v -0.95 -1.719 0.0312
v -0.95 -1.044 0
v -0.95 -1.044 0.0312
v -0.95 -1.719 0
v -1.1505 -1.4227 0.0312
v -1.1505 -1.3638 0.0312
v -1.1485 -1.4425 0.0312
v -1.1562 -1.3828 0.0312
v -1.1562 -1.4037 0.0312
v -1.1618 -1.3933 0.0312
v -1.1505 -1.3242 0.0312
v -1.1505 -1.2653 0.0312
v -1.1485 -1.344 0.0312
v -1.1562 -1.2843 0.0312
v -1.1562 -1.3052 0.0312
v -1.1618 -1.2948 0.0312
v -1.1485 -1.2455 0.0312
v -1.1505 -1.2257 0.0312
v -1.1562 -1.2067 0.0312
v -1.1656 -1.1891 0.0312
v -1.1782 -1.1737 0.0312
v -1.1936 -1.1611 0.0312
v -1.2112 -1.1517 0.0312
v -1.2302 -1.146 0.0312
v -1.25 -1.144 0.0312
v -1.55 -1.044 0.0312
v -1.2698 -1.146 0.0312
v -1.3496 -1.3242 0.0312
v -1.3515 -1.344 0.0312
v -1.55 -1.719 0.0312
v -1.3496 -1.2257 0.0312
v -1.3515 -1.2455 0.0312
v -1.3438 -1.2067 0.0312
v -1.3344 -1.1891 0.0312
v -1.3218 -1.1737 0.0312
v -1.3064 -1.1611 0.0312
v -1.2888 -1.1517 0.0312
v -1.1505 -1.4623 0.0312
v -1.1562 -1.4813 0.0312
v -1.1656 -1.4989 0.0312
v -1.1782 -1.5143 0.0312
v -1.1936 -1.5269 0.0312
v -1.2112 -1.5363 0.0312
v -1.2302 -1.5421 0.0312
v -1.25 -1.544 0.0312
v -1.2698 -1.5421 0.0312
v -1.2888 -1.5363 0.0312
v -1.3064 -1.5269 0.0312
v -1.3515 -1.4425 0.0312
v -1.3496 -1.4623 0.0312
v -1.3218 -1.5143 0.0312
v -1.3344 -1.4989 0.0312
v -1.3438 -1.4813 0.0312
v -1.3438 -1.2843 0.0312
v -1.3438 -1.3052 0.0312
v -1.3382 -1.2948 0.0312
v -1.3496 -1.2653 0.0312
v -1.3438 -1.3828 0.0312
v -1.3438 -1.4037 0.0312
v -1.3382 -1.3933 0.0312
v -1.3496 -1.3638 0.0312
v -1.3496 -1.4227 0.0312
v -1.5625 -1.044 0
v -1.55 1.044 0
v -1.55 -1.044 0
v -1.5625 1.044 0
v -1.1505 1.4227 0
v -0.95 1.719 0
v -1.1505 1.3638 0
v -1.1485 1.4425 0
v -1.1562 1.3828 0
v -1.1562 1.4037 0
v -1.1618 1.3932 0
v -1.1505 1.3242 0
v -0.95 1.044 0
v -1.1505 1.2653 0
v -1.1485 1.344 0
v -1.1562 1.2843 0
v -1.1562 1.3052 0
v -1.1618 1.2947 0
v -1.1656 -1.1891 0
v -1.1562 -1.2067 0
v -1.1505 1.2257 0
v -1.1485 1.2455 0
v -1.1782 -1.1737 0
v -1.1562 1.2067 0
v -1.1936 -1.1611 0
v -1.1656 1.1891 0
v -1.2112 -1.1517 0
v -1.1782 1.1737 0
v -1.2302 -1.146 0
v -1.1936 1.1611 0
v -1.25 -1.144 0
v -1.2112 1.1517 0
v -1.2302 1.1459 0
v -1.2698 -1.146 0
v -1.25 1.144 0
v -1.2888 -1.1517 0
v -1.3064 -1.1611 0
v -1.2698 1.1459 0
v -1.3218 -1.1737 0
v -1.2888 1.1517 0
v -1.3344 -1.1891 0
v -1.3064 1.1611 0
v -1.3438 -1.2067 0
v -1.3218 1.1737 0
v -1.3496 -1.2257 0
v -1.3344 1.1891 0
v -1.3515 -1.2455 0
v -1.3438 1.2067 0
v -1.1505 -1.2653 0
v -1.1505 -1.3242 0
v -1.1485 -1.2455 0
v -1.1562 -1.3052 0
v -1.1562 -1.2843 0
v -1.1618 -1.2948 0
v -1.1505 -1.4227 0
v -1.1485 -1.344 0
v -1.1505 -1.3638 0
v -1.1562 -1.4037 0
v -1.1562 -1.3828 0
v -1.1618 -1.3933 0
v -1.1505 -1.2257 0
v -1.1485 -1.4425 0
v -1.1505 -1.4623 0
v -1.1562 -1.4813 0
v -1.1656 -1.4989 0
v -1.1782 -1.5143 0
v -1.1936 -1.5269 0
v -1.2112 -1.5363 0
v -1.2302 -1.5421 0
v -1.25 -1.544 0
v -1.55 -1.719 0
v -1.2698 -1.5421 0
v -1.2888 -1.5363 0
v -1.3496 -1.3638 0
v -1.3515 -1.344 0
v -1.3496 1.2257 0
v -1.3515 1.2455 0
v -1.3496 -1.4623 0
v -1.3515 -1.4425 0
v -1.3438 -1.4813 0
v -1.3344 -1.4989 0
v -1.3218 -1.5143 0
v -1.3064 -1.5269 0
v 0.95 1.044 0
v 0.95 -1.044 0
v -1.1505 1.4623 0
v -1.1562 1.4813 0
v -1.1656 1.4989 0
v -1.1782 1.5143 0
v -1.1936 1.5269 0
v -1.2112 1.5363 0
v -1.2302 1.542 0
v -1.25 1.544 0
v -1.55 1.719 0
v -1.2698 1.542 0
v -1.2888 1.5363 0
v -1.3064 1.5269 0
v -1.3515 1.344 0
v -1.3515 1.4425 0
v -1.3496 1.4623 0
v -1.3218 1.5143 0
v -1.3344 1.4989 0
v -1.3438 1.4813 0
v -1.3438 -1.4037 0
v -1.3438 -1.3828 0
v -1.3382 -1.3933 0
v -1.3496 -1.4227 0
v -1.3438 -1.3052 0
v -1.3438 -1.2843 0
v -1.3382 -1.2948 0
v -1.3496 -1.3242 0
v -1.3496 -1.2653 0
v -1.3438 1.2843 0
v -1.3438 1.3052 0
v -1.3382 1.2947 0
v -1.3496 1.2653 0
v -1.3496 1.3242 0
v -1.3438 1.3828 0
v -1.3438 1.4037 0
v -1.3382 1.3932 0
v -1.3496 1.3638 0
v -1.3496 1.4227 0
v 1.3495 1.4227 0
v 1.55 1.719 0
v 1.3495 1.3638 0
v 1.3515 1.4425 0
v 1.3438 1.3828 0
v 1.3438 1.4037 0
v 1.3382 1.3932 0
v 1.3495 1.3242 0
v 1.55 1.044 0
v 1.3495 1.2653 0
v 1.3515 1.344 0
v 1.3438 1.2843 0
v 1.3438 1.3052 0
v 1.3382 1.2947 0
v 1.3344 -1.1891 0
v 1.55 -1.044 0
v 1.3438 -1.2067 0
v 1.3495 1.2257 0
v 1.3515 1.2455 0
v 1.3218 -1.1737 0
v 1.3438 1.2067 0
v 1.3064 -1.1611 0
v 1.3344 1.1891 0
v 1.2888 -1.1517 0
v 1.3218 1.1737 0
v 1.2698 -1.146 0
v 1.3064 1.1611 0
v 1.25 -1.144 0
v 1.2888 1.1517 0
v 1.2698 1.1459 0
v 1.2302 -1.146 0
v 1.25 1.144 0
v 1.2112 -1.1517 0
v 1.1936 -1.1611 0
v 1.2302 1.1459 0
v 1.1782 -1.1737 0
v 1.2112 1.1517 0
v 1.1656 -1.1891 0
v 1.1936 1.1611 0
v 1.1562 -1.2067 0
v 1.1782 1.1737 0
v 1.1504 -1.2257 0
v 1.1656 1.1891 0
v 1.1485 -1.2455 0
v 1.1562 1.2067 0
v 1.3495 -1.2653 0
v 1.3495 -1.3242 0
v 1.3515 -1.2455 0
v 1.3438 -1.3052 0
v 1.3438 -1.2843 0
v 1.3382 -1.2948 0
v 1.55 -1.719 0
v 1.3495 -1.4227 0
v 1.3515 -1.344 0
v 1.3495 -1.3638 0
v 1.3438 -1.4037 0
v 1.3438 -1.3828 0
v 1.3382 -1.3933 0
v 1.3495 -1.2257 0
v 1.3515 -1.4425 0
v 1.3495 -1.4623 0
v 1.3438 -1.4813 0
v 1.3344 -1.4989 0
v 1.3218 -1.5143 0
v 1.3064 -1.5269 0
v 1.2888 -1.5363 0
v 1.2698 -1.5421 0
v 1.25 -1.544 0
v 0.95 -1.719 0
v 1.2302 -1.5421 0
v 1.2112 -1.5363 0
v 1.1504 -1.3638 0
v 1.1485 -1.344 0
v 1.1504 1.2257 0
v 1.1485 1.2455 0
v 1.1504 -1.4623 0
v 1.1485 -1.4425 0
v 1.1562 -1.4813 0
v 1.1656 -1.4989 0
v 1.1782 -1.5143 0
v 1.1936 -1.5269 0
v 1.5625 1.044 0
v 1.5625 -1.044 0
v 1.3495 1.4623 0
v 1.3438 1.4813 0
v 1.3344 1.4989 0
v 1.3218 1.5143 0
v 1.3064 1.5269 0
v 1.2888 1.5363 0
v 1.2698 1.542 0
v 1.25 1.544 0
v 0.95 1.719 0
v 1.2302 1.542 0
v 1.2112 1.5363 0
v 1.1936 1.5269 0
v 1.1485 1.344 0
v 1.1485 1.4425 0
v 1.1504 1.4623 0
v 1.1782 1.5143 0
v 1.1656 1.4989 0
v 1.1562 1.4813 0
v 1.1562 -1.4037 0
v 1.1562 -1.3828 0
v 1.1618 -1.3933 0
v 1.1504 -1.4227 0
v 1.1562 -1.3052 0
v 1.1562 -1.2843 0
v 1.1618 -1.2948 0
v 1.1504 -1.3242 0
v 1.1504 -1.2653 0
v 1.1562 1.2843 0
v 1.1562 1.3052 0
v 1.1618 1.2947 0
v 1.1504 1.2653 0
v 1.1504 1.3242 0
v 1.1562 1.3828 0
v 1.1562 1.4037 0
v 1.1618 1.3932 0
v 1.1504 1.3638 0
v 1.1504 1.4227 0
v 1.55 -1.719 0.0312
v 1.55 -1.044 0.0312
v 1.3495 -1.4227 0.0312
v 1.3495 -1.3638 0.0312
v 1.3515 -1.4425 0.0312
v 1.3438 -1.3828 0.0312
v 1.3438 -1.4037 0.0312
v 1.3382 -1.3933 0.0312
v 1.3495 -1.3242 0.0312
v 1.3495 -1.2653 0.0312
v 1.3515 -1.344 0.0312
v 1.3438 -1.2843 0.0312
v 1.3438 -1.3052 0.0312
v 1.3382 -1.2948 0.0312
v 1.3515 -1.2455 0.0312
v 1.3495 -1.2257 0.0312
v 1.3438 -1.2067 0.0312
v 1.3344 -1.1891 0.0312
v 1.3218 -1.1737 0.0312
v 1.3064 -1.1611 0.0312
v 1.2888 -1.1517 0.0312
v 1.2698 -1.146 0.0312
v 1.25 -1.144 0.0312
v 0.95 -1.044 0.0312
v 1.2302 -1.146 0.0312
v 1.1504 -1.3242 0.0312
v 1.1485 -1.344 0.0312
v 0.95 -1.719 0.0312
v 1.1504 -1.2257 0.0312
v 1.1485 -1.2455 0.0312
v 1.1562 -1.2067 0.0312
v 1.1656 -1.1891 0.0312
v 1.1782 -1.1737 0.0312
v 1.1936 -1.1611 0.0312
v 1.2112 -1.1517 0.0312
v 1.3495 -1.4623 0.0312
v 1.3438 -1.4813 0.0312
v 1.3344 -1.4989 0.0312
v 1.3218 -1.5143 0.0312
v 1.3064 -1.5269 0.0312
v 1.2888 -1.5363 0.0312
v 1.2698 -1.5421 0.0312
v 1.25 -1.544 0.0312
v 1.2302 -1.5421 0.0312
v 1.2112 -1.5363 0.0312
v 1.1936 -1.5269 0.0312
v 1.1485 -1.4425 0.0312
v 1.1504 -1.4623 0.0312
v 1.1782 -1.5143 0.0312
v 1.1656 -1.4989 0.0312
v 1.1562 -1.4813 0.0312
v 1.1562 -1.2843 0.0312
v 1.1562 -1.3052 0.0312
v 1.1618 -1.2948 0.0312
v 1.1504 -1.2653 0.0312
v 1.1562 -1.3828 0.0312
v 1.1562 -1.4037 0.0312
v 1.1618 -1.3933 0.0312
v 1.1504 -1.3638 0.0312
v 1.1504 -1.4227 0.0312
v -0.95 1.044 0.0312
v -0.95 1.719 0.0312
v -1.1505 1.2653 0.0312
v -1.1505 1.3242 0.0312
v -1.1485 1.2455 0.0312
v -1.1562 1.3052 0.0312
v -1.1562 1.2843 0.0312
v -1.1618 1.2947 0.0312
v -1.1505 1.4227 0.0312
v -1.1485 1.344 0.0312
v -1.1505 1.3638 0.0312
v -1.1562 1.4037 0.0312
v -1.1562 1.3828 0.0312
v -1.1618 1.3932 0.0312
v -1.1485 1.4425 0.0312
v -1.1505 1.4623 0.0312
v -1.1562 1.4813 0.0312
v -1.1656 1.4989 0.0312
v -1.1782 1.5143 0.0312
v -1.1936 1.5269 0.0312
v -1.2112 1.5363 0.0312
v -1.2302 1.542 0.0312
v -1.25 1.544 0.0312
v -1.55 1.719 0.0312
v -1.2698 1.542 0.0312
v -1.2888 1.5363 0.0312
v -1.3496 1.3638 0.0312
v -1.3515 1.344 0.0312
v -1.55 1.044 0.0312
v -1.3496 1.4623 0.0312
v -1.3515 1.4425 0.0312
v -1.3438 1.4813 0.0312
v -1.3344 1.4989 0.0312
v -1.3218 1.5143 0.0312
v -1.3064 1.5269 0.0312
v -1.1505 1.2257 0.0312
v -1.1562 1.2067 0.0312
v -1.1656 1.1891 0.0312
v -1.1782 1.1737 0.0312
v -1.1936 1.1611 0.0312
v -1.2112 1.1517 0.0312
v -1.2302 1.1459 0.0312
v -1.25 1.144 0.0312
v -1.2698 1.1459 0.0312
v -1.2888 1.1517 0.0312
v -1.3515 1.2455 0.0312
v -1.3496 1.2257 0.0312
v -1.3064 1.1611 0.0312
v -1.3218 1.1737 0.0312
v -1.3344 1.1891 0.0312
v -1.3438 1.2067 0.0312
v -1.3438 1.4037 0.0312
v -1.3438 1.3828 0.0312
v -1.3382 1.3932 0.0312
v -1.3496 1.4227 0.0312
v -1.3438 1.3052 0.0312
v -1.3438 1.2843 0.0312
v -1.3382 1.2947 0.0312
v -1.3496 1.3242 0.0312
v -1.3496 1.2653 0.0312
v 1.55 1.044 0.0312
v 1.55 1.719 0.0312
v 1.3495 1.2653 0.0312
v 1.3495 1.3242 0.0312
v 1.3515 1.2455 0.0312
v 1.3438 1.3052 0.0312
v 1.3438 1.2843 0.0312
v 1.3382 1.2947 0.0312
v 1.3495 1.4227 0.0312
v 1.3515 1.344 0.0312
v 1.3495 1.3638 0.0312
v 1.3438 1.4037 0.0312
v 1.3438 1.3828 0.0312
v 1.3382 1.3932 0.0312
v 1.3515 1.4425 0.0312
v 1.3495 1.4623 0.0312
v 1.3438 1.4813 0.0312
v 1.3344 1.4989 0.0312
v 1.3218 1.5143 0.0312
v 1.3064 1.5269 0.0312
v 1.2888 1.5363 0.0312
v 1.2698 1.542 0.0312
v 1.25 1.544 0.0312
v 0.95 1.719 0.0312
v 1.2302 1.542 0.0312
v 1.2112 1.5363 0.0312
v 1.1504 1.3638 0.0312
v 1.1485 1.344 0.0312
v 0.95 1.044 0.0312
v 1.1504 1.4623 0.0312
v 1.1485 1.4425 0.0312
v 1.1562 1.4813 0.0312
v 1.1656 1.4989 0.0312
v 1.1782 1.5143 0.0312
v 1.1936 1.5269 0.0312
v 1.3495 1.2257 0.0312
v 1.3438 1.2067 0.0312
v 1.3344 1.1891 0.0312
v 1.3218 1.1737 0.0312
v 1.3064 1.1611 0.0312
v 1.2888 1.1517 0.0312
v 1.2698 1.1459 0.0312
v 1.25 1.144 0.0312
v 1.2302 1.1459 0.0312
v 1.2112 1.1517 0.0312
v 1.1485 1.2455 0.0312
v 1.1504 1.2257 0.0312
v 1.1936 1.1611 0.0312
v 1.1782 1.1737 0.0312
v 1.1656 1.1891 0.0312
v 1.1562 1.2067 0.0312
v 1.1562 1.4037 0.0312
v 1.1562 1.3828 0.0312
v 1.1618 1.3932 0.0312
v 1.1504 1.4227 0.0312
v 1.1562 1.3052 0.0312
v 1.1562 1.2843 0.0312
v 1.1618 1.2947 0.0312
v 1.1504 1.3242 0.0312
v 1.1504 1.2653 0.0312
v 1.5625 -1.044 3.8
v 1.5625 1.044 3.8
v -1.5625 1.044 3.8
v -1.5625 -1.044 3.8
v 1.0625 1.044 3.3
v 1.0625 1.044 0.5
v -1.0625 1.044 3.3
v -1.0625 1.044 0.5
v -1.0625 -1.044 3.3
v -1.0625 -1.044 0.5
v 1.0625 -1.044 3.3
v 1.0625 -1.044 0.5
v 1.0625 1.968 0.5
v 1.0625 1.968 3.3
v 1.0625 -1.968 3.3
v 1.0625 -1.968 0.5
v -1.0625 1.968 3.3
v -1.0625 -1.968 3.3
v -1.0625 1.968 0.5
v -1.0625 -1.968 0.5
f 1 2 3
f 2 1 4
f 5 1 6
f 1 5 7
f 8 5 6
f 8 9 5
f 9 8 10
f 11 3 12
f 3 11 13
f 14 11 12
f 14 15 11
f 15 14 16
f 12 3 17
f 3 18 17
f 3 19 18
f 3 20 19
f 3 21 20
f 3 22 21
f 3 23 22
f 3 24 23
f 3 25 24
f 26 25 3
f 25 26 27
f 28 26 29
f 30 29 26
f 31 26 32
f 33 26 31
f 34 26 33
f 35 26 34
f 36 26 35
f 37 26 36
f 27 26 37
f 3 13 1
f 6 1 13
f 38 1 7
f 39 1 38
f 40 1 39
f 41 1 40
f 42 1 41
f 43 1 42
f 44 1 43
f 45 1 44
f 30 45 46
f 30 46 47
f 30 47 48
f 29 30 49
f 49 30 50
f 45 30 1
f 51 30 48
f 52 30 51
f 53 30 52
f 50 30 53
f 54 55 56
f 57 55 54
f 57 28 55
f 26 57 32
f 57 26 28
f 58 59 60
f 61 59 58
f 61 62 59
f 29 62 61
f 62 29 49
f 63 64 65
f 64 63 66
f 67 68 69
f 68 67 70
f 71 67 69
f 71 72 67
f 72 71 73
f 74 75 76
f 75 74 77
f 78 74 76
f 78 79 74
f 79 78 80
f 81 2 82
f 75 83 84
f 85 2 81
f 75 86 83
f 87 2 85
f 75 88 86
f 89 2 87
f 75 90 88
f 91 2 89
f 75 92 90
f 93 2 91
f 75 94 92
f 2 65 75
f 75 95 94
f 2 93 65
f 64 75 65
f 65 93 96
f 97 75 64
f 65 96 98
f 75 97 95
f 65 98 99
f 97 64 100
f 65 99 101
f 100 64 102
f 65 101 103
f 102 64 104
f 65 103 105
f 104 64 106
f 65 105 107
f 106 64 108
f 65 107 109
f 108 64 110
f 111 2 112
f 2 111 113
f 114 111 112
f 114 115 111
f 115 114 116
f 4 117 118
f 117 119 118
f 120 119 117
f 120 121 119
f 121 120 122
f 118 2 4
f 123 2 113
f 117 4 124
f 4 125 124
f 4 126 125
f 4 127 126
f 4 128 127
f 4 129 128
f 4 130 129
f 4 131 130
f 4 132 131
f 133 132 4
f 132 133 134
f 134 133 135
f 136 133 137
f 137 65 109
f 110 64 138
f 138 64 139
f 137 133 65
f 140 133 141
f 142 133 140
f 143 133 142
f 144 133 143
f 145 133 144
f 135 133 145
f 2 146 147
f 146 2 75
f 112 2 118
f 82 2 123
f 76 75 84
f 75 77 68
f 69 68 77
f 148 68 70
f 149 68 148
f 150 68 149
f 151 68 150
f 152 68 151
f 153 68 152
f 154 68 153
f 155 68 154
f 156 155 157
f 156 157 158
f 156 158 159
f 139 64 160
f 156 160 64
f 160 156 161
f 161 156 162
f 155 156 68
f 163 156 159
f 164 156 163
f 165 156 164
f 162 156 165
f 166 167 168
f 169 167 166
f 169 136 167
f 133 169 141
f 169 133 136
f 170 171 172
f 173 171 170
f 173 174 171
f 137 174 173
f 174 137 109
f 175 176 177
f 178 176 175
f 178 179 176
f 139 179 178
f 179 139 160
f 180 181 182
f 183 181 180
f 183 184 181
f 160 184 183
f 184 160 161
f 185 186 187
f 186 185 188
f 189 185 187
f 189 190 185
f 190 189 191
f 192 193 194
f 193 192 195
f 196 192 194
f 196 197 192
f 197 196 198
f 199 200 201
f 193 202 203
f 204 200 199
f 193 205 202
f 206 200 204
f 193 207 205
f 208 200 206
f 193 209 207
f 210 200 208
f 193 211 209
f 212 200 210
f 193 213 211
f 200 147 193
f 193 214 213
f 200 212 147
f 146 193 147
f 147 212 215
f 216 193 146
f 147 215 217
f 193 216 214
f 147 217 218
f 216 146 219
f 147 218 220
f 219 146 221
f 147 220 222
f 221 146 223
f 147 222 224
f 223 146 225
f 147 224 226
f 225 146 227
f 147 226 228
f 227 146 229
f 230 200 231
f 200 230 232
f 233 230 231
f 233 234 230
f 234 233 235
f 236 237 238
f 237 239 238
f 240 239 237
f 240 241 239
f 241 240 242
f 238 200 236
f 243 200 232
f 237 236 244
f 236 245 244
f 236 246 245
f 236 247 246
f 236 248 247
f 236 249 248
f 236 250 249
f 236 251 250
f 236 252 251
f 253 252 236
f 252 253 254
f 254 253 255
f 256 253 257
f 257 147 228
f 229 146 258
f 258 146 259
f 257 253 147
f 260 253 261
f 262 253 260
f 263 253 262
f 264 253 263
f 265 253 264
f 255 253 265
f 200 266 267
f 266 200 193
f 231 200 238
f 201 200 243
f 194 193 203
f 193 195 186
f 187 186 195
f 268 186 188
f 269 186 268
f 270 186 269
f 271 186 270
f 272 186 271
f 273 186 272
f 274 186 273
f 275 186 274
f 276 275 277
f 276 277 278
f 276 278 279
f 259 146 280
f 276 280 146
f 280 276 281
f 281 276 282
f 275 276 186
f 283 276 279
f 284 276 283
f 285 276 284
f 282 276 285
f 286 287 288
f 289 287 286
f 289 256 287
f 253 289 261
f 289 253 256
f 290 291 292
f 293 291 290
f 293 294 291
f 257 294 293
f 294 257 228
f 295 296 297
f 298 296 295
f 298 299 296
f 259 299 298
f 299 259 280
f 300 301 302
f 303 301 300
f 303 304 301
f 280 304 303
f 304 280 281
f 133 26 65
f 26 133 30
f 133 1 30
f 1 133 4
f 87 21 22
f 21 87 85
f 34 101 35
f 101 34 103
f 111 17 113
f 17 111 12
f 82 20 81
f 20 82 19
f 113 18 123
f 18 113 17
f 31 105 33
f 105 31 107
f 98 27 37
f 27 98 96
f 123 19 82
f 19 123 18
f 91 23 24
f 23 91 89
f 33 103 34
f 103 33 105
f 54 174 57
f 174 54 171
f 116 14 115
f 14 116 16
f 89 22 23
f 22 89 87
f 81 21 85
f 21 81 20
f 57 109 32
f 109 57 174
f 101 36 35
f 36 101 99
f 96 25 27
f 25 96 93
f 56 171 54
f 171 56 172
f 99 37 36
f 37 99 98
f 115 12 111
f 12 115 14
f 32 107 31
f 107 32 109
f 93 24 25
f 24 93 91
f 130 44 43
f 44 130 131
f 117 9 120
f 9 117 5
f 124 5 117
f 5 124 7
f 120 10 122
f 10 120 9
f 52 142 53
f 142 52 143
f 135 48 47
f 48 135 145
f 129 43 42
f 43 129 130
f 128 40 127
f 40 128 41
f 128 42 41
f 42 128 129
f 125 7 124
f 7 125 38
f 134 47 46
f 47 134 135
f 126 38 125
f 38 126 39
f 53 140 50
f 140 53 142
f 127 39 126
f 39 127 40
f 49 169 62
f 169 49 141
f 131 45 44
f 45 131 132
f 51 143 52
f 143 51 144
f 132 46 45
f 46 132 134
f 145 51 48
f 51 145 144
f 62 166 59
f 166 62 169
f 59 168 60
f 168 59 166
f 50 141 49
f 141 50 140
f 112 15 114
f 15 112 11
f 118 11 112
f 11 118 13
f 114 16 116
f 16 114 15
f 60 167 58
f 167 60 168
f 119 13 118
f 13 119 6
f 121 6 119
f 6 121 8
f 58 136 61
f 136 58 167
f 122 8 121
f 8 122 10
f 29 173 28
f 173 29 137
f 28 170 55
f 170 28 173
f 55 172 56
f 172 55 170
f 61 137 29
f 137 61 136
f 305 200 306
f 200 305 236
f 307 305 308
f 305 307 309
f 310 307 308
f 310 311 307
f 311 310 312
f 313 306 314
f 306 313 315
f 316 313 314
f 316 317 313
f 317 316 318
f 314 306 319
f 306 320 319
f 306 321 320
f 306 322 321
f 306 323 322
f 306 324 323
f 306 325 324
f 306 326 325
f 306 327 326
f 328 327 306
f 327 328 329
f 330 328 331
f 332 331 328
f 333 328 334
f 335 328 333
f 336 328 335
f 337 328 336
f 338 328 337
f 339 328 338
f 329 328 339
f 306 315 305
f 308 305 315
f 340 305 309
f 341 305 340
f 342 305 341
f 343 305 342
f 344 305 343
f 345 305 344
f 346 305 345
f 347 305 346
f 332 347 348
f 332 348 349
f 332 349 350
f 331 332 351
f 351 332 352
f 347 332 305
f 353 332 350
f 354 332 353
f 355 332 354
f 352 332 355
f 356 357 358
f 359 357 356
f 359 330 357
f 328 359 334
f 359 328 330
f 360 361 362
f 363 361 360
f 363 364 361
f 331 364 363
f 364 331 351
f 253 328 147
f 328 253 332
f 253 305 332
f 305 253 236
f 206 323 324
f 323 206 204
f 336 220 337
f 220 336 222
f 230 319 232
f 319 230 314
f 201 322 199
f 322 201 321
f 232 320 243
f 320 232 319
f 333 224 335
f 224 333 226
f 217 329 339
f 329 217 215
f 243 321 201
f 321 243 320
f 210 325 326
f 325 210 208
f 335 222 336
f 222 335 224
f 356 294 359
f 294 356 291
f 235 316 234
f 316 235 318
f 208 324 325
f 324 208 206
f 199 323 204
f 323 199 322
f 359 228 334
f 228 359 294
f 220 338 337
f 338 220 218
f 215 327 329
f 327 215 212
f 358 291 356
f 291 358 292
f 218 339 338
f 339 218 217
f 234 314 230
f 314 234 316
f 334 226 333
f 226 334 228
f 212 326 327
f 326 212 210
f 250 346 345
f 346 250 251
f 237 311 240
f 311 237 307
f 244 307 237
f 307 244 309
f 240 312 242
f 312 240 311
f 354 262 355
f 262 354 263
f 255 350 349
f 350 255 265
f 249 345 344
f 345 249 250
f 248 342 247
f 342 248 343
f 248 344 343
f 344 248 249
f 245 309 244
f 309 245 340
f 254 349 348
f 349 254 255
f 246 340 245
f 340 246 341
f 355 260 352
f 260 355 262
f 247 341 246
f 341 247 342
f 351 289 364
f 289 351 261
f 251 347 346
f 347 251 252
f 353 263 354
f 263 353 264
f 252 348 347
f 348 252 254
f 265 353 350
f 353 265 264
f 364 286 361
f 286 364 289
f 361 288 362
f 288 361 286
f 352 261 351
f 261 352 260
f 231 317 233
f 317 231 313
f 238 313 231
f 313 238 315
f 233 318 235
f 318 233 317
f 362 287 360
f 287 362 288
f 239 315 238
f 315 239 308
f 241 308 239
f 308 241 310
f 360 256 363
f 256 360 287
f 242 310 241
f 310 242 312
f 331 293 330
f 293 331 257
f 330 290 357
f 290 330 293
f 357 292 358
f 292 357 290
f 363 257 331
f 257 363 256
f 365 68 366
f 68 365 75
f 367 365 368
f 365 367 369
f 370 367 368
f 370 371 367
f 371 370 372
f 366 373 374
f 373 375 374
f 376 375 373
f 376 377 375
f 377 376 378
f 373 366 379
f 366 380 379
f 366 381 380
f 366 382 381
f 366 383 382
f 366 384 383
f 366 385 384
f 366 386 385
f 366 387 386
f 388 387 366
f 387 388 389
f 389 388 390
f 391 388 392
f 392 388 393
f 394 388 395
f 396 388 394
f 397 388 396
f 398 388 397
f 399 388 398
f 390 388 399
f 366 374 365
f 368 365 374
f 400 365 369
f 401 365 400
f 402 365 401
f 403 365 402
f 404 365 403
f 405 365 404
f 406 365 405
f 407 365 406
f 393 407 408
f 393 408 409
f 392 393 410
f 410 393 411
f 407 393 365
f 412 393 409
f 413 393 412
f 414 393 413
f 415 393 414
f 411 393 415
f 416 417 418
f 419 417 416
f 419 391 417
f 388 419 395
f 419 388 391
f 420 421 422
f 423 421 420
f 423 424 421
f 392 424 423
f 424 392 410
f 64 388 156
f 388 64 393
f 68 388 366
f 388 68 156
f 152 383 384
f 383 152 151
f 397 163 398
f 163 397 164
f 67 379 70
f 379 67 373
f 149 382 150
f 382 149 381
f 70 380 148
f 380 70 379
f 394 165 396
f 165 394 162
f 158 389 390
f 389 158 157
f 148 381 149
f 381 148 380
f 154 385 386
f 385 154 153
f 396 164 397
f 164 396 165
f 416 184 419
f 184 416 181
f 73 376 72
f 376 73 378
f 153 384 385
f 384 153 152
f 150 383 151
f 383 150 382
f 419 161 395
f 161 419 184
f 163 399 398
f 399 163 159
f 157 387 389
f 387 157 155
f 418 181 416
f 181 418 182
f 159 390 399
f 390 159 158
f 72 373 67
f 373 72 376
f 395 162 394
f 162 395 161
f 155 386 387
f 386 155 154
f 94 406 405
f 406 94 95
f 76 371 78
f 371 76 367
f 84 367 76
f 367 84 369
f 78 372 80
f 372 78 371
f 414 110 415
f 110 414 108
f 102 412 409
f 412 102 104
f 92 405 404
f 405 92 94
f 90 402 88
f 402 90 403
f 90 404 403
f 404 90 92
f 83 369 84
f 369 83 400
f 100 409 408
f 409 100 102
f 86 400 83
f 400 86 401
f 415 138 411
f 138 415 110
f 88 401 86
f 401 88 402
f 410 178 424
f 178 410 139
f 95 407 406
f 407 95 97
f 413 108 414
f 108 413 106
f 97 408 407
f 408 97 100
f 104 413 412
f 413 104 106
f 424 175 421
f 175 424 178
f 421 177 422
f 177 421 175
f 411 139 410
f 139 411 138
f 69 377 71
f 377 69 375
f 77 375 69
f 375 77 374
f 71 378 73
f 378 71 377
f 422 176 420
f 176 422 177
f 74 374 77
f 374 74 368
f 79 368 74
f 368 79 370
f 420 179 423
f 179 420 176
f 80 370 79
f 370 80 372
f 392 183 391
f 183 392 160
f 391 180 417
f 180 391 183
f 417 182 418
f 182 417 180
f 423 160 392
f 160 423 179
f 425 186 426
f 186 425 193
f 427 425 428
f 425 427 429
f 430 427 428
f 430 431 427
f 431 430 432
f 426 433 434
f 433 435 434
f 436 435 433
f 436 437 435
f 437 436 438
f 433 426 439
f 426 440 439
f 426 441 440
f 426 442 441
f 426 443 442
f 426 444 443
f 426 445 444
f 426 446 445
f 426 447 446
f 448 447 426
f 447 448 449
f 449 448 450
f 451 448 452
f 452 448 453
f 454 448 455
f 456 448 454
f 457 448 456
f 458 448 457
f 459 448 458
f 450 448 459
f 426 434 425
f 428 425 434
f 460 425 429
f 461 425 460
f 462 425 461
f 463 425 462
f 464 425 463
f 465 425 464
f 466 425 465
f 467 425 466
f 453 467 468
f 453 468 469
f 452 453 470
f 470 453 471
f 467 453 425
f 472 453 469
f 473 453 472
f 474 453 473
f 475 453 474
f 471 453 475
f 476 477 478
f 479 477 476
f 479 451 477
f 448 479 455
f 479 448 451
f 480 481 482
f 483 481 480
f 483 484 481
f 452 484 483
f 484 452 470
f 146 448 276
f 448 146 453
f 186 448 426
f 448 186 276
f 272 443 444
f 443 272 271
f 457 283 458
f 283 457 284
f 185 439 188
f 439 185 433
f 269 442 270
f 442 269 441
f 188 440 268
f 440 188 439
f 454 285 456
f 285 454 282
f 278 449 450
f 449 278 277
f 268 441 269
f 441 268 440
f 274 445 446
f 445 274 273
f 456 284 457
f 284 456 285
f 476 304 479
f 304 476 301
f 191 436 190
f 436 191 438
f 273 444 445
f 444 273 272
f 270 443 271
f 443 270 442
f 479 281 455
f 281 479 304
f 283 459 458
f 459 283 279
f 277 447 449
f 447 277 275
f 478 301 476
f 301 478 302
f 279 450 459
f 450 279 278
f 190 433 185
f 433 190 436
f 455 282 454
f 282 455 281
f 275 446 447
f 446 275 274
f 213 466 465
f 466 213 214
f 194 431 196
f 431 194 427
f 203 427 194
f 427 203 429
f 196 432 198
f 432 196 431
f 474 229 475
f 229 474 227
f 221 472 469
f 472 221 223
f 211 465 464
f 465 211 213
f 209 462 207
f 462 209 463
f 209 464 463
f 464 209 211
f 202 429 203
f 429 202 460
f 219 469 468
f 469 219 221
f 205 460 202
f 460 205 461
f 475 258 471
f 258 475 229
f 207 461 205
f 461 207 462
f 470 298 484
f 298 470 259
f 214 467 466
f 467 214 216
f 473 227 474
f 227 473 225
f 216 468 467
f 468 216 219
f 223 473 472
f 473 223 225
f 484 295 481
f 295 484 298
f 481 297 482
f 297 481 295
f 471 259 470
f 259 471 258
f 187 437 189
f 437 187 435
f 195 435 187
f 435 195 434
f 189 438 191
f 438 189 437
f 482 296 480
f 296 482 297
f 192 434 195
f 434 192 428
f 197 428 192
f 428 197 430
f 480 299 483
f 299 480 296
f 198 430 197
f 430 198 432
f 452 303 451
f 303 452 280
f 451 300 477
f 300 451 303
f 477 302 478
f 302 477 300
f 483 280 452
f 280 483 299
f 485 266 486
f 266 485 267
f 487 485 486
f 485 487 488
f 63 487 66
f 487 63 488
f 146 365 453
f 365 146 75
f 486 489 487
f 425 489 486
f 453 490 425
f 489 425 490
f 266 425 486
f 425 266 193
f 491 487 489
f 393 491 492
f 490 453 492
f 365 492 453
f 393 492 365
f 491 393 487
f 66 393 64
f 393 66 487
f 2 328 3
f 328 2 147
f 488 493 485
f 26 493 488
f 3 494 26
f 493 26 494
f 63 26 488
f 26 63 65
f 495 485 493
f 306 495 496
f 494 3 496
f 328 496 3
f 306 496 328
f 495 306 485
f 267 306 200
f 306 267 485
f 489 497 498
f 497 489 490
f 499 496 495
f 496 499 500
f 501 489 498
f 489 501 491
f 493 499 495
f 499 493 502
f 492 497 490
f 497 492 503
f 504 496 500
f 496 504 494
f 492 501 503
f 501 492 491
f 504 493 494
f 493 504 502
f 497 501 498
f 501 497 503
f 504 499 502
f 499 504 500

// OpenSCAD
$fn=32;
e = 0.001;

/* datasheet dims */
A = 3.125;
B = 3.936;
C = 3.800;
D = 2.500;
E = 2.688;
GX = 0.203;
GY = 0.400;

/* core dims (estimated) */
core_X = A;
core_Y = E-GY-0.2;
core_Z = C;

/* bell dims (estimated) */
bell_X = A-1.0;
bell_Y = B;
bell_Z = C-1.0;
bell_up = 0.5;

/* mounting tabs */
tab_X = 0.6;
tab_Y = 0.75;
tab_Z = 0.03125;

module tab() {
     difference() {
	  cube( [tab_X, tab_Y, tab_Z]);
	  translate( [tab_X/2, tab_Y/2+GY/2-GX/2, -e])
	       cylinder( d=GX, h=tab_Z+2*e);
	  translate( [tab_X/2, tab_Y/2-GY/2+GX/2, -e])
	       cylinder( d=GX, h=tab_Z+2*e);
	  translate( [tab_X/2, tab_Y/2, -e])
	       cylinder( d=GX, h=tab_Z+2*e);
     }
}

module 272hx() {
     color( [0.3, 0.3, 0.3]) {
	  /* core */
	  translate( [-core_X/2, -core_Y/2, 0])
	       cube( [core_X, core_Y, core_Z]);
	  /* bell */
	  translate( [-bell_X/2, -bell_Y/2, bell_up])
	       cube( [bell_X, bell_Y, bell_Z]);
	  translate( [-(D/2)-tab_X/2, -E/2-tab_Y/2, 0])
	       tab();
	  translate( [(D/2)-tab_X/2, -E/2-tab_Y/2, 0])
	       tab();
	  translate( [-(D/2)-tab_X/2, E/2-tab_Y/2, 0])
	       tab();
	  translate( [(D/2)-tab_X/2, E/2-tab_Y/2, 0])
	       tab();
     }
}


272hx();
